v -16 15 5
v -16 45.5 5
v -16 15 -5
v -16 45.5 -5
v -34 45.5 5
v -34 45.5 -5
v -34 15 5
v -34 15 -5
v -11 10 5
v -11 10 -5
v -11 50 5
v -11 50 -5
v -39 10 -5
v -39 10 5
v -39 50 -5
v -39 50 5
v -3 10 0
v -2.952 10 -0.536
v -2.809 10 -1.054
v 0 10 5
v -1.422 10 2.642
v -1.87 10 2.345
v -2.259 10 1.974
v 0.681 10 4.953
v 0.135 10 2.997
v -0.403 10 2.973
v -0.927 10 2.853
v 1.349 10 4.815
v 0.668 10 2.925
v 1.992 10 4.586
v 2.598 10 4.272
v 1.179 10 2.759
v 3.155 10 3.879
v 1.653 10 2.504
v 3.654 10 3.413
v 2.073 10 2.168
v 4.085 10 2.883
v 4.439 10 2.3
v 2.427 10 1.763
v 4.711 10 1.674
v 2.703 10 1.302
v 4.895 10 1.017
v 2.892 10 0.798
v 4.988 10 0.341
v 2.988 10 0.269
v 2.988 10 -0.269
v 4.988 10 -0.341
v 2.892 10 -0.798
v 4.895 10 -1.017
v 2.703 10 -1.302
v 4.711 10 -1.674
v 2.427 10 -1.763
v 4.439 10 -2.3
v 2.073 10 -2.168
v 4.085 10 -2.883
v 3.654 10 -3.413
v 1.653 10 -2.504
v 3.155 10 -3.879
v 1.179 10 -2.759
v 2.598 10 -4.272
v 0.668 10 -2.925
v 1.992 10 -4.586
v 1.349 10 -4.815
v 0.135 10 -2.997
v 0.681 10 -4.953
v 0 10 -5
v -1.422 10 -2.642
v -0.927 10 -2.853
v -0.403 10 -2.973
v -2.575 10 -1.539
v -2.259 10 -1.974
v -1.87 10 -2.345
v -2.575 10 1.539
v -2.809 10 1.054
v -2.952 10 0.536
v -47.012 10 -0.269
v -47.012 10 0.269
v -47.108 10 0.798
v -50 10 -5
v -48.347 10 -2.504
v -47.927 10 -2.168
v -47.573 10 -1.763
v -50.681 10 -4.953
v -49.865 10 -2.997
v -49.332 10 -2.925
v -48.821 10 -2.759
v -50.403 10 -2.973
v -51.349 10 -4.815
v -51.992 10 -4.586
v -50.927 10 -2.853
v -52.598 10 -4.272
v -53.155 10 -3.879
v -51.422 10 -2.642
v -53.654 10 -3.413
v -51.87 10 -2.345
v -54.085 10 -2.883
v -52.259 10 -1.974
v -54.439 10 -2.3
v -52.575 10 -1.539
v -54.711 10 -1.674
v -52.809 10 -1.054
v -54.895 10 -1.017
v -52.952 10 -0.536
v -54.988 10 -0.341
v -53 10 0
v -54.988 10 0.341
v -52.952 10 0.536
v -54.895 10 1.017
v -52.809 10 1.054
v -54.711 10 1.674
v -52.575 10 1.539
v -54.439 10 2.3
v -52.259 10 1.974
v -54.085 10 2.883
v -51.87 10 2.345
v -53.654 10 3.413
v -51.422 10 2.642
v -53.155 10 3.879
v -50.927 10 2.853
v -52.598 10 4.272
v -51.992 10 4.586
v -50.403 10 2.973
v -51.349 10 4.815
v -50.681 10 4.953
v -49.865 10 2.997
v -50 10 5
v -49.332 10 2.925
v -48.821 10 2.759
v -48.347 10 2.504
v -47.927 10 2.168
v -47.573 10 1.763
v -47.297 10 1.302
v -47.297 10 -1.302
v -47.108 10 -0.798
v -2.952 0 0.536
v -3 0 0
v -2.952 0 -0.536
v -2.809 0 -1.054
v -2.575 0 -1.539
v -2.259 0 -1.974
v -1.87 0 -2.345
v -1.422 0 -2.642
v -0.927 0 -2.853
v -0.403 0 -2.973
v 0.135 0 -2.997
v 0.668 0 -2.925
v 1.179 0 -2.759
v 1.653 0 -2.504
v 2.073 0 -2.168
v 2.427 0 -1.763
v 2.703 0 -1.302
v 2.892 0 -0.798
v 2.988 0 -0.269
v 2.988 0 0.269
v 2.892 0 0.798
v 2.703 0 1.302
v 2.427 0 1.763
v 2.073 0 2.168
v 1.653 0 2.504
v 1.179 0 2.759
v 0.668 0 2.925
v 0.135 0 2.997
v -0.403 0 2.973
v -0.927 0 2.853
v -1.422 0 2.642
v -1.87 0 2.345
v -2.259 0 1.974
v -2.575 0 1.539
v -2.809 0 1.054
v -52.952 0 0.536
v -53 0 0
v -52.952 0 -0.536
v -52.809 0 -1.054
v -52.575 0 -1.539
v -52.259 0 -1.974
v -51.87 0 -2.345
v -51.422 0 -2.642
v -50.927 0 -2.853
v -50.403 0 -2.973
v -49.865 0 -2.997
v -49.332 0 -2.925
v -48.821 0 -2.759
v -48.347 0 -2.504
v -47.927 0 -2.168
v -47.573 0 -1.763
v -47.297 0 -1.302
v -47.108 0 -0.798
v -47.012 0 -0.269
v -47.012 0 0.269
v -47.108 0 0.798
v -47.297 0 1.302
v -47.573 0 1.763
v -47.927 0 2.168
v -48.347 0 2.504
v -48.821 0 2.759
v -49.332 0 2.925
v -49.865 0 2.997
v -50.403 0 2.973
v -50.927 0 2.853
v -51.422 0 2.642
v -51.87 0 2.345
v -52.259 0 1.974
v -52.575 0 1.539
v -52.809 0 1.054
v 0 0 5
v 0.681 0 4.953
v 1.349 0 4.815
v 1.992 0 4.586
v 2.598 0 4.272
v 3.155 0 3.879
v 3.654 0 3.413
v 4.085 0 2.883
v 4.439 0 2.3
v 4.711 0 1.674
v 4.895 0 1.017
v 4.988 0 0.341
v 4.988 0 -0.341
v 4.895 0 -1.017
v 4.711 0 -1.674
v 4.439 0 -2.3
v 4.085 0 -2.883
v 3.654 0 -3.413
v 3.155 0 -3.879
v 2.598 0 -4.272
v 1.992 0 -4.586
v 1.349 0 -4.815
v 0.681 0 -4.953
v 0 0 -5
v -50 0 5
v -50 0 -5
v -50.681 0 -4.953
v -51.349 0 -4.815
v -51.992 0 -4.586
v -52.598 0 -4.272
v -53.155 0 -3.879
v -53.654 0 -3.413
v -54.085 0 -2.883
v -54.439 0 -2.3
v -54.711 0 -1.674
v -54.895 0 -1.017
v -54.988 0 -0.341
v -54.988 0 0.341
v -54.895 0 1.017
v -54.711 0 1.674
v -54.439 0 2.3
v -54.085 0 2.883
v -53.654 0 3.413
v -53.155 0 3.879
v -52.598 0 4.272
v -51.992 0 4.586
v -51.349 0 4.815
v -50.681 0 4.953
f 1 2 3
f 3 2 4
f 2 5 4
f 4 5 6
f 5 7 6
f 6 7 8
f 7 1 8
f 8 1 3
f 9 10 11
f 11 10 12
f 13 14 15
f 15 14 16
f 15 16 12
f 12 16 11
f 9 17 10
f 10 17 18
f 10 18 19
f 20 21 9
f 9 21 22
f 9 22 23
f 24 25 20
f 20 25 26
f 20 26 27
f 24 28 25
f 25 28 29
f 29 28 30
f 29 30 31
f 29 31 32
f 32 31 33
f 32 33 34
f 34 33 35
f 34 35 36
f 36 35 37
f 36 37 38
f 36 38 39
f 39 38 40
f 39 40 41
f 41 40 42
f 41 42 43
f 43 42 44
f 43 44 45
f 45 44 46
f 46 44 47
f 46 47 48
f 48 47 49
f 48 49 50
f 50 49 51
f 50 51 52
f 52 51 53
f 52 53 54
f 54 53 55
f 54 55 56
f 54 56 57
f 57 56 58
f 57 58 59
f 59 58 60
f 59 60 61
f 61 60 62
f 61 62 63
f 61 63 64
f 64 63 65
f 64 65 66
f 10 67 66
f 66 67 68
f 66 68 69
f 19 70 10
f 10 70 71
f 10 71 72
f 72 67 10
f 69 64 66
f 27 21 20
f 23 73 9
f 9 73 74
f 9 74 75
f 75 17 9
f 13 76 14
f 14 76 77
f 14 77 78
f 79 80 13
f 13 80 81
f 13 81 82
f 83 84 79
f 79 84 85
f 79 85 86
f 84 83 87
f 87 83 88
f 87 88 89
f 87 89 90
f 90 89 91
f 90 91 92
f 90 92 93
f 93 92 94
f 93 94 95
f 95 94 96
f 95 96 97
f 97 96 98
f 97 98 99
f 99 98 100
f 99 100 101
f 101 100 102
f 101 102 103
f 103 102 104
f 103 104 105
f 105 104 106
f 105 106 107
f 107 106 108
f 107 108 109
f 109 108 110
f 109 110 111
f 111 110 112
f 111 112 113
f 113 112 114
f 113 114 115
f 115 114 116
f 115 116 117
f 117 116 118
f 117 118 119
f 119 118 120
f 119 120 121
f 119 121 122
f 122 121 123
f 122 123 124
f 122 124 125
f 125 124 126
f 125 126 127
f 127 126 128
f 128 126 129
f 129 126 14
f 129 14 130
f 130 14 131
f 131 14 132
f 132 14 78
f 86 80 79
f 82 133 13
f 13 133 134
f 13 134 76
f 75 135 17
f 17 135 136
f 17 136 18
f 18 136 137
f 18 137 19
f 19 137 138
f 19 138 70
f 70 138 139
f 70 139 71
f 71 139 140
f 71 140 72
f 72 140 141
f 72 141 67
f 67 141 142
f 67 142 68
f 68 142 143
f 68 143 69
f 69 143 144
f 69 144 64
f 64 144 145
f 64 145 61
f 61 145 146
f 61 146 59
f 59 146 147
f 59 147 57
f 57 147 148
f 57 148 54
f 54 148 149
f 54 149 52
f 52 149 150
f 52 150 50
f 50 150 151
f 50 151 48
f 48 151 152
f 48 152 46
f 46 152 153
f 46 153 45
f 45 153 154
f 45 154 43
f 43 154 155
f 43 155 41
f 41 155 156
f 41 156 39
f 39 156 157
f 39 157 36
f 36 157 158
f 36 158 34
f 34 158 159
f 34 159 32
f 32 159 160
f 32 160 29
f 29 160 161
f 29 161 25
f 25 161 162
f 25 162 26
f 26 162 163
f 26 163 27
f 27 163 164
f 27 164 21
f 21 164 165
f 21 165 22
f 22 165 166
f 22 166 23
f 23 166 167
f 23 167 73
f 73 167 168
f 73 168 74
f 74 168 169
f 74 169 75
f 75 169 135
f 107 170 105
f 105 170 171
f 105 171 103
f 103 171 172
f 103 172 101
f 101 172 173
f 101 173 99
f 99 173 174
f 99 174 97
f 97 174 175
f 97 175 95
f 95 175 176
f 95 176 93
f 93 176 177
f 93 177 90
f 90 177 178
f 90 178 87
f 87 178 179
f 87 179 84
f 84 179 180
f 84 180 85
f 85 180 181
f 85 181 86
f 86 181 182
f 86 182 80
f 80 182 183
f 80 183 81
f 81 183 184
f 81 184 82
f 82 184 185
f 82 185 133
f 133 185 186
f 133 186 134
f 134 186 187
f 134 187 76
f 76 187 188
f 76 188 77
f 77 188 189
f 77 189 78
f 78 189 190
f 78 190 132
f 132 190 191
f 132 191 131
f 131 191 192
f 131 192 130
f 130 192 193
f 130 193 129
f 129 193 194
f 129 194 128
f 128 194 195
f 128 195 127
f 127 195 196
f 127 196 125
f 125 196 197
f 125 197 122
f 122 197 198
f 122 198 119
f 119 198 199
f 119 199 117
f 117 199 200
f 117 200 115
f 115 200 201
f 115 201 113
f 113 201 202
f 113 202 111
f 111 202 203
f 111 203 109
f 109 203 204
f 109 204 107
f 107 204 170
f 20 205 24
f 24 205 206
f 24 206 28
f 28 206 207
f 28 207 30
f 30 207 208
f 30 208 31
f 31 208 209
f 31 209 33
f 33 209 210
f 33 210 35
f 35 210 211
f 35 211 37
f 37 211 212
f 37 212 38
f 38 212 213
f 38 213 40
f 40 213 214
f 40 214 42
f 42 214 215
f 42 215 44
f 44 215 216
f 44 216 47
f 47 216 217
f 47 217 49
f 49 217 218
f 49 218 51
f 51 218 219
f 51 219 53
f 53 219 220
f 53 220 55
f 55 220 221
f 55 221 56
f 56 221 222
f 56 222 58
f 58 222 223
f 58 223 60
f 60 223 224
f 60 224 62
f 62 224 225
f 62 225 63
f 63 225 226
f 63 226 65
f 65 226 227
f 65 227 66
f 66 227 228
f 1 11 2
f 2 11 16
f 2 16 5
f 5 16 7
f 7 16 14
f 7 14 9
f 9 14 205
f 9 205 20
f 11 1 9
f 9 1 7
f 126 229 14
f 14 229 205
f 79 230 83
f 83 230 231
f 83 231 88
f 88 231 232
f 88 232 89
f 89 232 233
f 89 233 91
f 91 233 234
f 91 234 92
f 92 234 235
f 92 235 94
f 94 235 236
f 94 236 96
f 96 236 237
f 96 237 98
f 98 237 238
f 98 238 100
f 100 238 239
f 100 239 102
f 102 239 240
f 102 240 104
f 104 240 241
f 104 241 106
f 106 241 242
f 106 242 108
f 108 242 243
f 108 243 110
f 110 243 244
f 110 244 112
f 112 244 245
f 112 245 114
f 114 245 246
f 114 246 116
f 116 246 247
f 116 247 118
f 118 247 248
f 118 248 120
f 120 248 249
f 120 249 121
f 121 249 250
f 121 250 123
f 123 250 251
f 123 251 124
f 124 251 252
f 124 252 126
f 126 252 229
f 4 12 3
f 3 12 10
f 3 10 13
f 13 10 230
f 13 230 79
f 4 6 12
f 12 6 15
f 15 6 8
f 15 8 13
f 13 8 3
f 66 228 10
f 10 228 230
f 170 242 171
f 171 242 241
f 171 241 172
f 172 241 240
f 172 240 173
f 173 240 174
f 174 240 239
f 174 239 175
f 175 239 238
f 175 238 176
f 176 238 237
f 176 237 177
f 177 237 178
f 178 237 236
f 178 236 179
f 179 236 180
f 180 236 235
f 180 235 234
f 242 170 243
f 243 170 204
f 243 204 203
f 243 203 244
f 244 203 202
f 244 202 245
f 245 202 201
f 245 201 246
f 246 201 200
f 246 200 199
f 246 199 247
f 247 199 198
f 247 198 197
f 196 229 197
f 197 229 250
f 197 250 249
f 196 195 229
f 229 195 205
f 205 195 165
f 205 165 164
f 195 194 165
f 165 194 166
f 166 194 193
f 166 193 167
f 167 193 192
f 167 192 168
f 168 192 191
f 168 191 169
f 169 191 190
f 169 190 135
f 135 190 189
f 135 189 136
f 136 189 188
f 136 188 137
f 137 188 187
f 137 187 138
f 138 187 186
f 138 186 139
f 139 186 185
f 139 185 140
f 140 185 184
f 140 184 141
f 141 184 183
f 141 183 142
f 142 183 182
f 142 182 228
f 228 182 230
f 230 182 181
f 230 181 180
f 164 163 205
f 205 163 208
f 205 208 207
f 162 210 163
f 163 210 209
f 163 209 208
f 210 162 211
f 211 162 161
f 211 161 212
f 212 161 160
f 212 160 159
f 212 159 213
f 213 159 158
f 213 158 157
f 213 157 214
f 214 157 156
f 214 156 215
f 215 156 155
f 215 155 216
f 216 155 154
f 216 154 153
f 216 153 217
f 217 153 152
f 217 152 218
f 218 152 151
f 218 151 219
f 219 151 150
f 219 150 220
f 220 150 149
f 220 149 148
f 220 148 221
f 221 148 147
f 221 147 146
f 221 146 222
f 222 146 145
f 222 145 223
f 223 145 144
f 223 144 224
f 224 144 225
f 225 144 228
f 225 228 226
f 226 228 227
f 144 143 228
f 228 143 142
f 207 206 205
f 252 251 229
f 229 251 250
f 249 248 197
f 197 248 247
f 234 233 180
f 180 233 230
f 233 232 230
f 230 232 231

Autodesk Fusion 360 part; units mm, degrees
sketch "Sketch1" plane through (0, 0, 0) normal (0, 1, 0) x (1, 0, 0)
  circle A0 centre (0, 0) radius 3
  circle A1 centre (0, 0) radius 5
  line L0 (0, 0) -> (-50, 0) construction
  circle A2 centre (-50, 0) radius 3
  circle A3 centre (-50, 0) radius 5
  line L1 (-50, -5) -> (0, -5)
  line L2 (0, 5) -> (-50, 5)
  dimension "d1" = 6
  dimension "d2" = 10
  dimension "d3" = 50
  dimension "d4" = 6
  dimension "d5" = 10
extrude "Extrude1" add sketch "Sketch1" along normal blind 10
sketch "Sketch2" plane through (0, 10, 0) normal (0, 1, 0) x (-1, 0, 0)
  circle A0 centre (50, 0) radius 3
  circle A1 centre (0, 0) radius 3
  line L0 (0, -5) -> (50, -5)
  arc A2 (50, -5) -> (50, 5) centre (50, 0) ccw
  line L1 (50, 5) -> (0, 5)
  arc A3 (0, 5) -> (0, -5) centre (0, 0) ccw
  line L2 (11, 5) -> (39, 5)
  line L3 (39, 5) -> (39, -5)
  line L4 (39, -5) -> (11, -5)
  line L5 (11, -5) -> (11, 5)
  dimension "d8" = 28
extrude "Extrude2" add sketch "Sketch2" along normal blind 40 contours L0 L1 L2 L3 L4 L5
sketch "Sketch3" plane through (0, 0, 5) normal (0, 0, 1) x (-1, 0, 0)
  line L0 (50, 0) -> (0, 0)
  line L1 (0, 0) -> (0, -10)
  line L2 (0, -10) -> (11, -10)
  line L3 (11, -10) -> (11, -50)
  line L4 (11, -50) -> (39, -50)
  line L5 (39, -50) -> (39, -10)
  line L6 (39, -10) -> (50, -10)
  line L7 (50, -10) -> (50, 0)
  line L8 (11, -10) -> (39, -10) construction
  line L9 (25, -10) -> (25, -15) construction
  line L10 (34, -45.5) -> (16, -45.5)
  line L11 (16, -45.5) -> (16, -15)
  line L12 (16, -15) -> (34, -15)
  line L13 (34, -15) -> (34, -45.5)
  dimension "d11" = 5
  dimension "d12" = 18
  dimension "d13" = 30.5
extrude "Extrude3" cut sketch "Sketch3" against normal blind 10 contours L10 L11 L12 L13
